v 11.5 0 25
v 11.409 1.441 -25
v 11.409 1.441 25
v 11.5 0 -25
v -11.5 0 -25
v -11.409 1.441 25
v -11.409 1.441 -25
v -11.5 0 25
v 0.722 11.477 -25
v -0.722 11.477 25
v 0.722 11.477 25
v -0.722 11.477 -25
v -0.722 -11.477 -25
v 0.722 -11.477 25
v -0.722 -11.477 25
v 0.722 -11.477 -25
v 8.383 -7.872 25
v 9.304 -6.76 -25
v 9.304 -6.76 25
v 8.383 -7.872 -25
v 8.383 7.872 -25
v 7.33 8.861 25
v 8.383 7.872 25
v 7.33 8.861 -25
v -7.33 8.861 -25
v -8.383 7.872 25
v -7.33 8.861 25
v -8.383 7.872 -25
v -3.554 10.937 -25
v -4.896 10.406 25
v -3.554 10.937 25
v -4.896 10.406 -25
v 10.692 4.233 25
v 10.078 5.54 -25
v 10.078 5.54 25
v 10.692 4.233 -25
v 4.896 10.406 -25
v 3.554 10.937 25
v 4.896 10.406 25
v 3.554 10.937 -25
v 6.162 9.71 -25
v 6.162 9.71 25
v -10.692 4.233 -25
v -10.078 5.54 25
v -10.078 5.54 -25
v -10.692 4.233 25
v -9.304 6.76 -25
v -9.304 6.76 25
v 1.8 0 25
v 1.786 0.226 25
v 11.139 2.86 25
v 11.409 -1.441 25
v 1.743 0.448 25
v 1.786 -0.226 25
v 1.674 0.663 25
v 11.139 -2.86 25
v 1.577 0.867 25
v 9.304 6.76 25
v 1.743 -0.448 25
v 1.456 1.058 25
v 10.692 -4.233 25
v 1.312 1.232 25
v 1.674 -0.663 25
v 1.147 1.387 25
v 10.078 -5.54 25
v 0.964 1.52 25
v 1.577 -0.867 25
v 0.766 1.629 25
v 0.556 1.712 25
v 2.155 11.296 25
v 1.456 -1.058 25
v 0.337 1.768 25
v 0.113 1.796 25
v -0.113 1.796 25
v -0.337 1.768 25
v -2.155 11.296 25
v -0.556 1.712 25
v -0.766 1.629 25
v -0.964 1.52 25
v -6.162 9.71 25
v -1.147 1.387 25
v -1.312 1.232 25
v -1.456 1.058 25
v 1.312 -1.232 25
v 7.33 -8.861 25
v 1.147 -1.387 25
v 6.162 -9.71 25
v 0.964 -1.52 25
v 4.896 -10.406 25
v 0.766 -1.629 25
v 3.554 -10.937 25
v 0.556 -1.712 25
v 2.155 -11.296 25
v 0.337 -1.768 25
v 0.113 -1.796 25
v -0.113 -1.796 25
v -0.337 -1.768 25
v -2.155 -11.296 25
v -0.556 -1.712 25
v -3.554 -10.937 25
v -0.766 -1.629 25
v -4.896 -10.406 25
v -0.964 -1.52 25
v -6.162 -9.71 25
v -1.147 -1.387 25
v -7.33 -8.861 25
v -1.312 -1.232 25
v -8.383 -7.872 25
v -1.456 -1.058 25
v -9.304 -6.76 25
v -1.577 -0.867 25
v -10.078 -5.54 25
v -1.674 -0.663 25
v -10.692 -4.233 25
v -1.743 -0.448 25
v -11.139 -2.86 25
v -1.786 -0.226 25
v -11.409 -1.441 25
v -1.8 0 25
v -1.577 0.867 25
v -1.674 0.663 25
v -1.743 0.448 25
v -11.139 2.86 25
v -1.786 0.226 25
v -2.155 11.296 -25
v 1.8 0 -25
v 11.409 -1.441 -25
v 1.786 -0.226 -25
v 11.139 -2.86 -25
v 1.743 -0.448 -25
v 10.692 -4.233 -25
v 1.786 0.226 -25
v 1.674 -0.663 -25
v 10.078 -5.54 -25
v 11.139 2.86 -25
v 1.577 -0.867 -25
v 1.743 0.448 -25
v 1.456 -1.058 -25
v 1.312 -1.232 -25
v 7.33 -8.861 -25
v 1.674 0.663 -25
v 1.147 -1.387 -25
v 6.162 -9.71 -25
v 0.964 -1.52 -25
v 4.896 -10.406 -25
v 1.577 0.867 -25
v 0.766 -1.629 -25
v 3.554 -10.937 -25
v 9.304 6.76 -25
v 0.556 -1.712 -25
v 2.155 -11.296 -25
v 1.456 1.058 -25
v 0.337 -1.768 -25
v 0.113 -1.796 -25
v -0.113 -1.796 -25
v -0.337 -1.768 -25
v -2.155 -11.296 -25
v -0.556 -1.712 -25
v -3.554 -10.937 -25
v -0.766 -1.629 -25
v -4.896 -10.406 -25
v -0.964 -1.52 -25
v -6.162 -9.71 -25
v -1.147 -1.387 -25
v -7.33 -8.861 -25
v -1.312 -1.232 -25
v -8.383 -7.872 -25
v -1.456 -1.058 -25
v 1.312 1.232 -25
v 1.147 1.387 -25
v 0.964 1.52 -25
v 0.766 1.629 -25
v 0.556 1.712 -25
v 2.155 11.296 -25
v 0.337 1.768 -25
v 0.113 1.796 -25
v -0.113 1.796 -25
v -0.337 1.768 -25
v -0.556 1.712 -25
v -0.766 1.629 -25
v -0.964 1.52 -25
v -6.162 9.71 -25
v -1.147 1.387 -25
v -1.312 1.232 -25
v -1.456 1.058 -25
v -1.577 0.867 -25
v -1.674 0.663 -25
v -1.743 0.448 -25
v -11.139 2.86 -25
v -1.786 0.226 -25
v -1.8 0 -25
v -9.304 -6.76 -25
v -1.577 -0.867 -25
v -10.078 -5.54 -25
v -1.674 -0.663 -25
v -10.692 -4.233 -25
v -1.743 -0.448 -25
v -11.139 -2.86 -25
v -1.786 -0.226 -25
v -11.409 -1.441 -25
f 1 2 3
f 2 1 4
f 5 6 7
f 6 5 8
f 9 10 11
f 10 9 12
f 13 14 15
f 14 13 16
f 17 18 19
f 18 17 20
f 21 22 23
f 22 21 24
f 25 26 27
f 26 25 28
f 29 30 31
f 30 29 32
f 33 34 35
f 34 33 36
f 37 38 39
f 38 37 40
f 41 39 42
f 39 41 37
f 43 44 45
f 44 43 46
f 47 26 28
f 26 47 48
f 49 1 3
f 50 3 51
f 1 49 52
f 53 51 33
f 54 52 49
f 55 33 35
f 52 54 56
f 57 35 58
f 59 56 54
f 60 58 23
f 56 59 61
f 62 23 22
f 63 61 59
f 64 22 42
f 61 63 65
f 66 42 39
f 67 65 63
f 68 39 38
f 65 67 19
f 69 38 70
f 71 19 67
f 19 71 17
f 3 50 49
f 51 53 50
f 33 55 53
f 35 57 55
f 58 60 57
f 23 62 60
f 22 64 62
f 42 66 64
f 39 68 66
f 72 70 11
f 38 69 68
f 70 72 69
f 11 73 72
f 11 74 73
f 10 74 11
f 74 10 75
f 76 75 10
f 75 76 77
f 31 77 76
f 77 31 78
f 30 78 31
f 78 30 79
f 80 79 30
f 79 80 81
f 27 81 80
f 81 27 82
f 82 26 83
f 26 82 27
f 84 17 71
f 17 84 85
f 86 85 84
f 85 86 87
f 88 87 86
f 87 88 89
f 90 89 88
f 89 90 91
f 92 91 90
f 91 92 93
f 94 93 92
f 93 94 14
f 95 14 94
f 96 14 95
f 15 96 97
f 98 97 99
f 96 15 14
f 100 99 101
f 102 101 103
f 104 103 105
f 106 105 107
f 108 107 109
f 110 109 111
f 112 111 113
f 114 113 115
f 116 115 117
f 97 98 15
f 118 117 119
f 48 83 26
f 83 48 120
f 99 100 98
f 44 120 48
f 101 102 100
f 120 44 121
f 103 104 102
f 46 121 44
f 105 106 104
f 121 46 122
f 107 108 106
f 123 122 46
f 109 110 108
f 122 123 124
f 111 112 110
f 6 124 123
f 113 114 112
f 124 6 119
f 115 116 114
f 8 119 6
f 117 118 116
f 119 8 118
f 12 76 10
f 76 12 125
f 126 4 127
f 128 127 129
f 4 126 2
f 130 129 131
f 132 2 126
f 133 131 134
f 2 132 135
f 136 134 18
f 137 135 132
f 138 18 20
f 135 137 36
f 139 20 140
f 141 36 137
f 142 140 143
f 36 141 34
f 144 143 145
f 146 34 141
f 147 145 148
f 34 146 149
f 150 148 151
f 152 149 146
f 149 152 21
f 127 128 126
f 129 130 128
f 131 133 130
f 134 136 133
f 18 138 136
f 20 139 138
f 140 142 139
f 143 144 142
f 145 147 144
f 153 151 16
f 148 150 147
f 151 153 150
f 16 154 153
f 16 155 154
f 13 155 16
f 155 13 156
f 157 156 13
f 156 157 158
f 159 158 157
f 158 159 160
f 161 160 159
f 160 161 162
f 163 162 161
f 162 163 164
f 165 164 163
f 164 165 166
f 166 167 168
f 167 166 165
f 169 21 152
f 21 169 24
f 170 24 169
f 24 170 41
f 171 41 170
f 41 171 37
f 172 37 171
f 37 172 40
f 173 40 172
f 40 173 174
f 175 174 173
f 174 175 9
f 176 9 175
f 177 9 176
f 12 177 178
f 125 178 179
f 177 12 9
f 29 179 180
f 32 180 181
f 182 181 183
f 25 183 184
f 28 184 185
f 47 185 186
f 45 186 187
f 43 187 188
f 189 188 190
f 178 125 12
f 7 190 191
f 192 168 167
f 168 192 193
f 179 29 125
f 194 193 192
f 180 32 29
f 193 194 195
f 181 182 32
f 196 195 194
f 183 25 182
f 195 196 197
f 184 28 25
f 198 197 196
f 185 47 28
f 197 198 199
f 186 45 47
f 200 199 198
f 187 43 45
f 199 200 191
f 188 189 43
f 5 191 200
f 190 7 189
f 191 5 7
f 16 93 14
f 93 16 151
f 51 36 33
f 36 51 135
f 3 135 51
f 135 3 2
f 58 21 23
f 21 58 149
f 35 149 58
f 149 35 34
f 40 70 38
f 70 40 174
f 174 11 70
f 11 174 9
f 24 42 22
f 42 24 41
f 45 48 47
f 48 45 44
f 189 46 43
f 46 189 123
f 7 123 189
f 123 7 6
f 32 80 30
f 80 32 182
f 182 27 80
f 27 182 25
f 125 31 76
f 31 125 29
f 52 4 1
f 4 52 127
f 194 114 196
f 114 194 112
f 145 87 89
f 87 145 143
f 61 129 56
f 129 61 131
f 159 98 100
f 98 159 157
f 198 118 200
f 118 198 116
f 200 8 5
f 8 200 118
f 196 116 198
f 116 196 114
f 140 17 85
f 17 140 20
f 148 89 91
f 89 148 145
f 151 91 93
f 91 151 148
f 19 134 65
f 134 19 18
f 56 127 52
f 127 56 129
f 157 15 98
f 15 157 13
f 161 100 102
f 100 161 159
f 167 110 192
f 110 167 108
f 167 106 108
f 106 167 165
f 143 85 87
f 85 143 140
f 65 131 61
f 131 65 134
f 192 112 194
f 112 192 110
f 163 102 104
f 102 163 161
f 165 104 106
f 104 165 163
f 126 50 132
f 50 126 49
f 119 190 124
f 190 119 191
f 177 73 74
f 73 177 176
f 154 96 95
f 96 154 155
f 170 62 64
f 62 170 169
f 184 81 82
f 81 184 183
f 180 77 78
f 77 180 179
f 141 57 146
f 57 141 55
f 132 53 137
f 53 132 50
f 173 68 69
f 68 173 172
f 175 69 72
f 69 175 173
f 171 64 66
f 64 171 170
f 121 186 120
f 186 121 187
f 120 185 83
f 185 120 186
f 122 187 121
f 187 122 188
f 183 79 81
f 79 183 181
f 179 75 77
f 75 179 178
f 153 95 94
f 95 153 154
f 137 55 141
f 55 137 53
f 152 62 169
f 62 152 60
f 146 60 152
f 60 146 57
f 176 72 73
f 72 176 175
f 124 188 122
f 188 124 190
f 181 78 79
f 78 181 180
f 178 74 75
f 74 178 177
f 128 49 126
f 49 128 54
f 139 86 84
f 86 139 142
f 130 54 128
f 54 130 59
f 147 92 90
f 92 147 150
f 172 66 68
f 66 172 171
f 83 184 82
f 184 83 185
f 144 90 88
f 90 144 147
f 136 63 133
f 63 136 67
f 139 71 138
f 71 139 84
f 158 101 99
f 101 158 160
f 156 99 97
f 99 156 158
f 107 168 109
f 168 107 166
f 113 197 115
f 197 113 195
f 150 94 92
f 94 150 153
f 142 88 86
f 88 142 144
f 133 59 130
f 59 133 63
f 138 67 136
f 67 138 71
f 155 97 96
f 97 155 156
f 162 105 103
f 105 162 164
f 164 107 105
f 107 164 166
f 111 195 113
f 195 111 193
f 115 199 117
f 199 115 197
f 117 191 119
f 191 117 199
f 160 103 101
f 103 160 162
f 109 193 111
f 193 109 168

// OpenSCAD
$fn = 50;


difference() {
	union() {
		translate(v = [0, 0, -25.0000000000]) {
			cylinder(h = 50, r = 11.5000000000);
		}
	}
	union() {
		translate(v = [0, 0, -100.0000000000]) {
			cylinder(h = 200, r = 1.8000000000);
		}
	}
}
